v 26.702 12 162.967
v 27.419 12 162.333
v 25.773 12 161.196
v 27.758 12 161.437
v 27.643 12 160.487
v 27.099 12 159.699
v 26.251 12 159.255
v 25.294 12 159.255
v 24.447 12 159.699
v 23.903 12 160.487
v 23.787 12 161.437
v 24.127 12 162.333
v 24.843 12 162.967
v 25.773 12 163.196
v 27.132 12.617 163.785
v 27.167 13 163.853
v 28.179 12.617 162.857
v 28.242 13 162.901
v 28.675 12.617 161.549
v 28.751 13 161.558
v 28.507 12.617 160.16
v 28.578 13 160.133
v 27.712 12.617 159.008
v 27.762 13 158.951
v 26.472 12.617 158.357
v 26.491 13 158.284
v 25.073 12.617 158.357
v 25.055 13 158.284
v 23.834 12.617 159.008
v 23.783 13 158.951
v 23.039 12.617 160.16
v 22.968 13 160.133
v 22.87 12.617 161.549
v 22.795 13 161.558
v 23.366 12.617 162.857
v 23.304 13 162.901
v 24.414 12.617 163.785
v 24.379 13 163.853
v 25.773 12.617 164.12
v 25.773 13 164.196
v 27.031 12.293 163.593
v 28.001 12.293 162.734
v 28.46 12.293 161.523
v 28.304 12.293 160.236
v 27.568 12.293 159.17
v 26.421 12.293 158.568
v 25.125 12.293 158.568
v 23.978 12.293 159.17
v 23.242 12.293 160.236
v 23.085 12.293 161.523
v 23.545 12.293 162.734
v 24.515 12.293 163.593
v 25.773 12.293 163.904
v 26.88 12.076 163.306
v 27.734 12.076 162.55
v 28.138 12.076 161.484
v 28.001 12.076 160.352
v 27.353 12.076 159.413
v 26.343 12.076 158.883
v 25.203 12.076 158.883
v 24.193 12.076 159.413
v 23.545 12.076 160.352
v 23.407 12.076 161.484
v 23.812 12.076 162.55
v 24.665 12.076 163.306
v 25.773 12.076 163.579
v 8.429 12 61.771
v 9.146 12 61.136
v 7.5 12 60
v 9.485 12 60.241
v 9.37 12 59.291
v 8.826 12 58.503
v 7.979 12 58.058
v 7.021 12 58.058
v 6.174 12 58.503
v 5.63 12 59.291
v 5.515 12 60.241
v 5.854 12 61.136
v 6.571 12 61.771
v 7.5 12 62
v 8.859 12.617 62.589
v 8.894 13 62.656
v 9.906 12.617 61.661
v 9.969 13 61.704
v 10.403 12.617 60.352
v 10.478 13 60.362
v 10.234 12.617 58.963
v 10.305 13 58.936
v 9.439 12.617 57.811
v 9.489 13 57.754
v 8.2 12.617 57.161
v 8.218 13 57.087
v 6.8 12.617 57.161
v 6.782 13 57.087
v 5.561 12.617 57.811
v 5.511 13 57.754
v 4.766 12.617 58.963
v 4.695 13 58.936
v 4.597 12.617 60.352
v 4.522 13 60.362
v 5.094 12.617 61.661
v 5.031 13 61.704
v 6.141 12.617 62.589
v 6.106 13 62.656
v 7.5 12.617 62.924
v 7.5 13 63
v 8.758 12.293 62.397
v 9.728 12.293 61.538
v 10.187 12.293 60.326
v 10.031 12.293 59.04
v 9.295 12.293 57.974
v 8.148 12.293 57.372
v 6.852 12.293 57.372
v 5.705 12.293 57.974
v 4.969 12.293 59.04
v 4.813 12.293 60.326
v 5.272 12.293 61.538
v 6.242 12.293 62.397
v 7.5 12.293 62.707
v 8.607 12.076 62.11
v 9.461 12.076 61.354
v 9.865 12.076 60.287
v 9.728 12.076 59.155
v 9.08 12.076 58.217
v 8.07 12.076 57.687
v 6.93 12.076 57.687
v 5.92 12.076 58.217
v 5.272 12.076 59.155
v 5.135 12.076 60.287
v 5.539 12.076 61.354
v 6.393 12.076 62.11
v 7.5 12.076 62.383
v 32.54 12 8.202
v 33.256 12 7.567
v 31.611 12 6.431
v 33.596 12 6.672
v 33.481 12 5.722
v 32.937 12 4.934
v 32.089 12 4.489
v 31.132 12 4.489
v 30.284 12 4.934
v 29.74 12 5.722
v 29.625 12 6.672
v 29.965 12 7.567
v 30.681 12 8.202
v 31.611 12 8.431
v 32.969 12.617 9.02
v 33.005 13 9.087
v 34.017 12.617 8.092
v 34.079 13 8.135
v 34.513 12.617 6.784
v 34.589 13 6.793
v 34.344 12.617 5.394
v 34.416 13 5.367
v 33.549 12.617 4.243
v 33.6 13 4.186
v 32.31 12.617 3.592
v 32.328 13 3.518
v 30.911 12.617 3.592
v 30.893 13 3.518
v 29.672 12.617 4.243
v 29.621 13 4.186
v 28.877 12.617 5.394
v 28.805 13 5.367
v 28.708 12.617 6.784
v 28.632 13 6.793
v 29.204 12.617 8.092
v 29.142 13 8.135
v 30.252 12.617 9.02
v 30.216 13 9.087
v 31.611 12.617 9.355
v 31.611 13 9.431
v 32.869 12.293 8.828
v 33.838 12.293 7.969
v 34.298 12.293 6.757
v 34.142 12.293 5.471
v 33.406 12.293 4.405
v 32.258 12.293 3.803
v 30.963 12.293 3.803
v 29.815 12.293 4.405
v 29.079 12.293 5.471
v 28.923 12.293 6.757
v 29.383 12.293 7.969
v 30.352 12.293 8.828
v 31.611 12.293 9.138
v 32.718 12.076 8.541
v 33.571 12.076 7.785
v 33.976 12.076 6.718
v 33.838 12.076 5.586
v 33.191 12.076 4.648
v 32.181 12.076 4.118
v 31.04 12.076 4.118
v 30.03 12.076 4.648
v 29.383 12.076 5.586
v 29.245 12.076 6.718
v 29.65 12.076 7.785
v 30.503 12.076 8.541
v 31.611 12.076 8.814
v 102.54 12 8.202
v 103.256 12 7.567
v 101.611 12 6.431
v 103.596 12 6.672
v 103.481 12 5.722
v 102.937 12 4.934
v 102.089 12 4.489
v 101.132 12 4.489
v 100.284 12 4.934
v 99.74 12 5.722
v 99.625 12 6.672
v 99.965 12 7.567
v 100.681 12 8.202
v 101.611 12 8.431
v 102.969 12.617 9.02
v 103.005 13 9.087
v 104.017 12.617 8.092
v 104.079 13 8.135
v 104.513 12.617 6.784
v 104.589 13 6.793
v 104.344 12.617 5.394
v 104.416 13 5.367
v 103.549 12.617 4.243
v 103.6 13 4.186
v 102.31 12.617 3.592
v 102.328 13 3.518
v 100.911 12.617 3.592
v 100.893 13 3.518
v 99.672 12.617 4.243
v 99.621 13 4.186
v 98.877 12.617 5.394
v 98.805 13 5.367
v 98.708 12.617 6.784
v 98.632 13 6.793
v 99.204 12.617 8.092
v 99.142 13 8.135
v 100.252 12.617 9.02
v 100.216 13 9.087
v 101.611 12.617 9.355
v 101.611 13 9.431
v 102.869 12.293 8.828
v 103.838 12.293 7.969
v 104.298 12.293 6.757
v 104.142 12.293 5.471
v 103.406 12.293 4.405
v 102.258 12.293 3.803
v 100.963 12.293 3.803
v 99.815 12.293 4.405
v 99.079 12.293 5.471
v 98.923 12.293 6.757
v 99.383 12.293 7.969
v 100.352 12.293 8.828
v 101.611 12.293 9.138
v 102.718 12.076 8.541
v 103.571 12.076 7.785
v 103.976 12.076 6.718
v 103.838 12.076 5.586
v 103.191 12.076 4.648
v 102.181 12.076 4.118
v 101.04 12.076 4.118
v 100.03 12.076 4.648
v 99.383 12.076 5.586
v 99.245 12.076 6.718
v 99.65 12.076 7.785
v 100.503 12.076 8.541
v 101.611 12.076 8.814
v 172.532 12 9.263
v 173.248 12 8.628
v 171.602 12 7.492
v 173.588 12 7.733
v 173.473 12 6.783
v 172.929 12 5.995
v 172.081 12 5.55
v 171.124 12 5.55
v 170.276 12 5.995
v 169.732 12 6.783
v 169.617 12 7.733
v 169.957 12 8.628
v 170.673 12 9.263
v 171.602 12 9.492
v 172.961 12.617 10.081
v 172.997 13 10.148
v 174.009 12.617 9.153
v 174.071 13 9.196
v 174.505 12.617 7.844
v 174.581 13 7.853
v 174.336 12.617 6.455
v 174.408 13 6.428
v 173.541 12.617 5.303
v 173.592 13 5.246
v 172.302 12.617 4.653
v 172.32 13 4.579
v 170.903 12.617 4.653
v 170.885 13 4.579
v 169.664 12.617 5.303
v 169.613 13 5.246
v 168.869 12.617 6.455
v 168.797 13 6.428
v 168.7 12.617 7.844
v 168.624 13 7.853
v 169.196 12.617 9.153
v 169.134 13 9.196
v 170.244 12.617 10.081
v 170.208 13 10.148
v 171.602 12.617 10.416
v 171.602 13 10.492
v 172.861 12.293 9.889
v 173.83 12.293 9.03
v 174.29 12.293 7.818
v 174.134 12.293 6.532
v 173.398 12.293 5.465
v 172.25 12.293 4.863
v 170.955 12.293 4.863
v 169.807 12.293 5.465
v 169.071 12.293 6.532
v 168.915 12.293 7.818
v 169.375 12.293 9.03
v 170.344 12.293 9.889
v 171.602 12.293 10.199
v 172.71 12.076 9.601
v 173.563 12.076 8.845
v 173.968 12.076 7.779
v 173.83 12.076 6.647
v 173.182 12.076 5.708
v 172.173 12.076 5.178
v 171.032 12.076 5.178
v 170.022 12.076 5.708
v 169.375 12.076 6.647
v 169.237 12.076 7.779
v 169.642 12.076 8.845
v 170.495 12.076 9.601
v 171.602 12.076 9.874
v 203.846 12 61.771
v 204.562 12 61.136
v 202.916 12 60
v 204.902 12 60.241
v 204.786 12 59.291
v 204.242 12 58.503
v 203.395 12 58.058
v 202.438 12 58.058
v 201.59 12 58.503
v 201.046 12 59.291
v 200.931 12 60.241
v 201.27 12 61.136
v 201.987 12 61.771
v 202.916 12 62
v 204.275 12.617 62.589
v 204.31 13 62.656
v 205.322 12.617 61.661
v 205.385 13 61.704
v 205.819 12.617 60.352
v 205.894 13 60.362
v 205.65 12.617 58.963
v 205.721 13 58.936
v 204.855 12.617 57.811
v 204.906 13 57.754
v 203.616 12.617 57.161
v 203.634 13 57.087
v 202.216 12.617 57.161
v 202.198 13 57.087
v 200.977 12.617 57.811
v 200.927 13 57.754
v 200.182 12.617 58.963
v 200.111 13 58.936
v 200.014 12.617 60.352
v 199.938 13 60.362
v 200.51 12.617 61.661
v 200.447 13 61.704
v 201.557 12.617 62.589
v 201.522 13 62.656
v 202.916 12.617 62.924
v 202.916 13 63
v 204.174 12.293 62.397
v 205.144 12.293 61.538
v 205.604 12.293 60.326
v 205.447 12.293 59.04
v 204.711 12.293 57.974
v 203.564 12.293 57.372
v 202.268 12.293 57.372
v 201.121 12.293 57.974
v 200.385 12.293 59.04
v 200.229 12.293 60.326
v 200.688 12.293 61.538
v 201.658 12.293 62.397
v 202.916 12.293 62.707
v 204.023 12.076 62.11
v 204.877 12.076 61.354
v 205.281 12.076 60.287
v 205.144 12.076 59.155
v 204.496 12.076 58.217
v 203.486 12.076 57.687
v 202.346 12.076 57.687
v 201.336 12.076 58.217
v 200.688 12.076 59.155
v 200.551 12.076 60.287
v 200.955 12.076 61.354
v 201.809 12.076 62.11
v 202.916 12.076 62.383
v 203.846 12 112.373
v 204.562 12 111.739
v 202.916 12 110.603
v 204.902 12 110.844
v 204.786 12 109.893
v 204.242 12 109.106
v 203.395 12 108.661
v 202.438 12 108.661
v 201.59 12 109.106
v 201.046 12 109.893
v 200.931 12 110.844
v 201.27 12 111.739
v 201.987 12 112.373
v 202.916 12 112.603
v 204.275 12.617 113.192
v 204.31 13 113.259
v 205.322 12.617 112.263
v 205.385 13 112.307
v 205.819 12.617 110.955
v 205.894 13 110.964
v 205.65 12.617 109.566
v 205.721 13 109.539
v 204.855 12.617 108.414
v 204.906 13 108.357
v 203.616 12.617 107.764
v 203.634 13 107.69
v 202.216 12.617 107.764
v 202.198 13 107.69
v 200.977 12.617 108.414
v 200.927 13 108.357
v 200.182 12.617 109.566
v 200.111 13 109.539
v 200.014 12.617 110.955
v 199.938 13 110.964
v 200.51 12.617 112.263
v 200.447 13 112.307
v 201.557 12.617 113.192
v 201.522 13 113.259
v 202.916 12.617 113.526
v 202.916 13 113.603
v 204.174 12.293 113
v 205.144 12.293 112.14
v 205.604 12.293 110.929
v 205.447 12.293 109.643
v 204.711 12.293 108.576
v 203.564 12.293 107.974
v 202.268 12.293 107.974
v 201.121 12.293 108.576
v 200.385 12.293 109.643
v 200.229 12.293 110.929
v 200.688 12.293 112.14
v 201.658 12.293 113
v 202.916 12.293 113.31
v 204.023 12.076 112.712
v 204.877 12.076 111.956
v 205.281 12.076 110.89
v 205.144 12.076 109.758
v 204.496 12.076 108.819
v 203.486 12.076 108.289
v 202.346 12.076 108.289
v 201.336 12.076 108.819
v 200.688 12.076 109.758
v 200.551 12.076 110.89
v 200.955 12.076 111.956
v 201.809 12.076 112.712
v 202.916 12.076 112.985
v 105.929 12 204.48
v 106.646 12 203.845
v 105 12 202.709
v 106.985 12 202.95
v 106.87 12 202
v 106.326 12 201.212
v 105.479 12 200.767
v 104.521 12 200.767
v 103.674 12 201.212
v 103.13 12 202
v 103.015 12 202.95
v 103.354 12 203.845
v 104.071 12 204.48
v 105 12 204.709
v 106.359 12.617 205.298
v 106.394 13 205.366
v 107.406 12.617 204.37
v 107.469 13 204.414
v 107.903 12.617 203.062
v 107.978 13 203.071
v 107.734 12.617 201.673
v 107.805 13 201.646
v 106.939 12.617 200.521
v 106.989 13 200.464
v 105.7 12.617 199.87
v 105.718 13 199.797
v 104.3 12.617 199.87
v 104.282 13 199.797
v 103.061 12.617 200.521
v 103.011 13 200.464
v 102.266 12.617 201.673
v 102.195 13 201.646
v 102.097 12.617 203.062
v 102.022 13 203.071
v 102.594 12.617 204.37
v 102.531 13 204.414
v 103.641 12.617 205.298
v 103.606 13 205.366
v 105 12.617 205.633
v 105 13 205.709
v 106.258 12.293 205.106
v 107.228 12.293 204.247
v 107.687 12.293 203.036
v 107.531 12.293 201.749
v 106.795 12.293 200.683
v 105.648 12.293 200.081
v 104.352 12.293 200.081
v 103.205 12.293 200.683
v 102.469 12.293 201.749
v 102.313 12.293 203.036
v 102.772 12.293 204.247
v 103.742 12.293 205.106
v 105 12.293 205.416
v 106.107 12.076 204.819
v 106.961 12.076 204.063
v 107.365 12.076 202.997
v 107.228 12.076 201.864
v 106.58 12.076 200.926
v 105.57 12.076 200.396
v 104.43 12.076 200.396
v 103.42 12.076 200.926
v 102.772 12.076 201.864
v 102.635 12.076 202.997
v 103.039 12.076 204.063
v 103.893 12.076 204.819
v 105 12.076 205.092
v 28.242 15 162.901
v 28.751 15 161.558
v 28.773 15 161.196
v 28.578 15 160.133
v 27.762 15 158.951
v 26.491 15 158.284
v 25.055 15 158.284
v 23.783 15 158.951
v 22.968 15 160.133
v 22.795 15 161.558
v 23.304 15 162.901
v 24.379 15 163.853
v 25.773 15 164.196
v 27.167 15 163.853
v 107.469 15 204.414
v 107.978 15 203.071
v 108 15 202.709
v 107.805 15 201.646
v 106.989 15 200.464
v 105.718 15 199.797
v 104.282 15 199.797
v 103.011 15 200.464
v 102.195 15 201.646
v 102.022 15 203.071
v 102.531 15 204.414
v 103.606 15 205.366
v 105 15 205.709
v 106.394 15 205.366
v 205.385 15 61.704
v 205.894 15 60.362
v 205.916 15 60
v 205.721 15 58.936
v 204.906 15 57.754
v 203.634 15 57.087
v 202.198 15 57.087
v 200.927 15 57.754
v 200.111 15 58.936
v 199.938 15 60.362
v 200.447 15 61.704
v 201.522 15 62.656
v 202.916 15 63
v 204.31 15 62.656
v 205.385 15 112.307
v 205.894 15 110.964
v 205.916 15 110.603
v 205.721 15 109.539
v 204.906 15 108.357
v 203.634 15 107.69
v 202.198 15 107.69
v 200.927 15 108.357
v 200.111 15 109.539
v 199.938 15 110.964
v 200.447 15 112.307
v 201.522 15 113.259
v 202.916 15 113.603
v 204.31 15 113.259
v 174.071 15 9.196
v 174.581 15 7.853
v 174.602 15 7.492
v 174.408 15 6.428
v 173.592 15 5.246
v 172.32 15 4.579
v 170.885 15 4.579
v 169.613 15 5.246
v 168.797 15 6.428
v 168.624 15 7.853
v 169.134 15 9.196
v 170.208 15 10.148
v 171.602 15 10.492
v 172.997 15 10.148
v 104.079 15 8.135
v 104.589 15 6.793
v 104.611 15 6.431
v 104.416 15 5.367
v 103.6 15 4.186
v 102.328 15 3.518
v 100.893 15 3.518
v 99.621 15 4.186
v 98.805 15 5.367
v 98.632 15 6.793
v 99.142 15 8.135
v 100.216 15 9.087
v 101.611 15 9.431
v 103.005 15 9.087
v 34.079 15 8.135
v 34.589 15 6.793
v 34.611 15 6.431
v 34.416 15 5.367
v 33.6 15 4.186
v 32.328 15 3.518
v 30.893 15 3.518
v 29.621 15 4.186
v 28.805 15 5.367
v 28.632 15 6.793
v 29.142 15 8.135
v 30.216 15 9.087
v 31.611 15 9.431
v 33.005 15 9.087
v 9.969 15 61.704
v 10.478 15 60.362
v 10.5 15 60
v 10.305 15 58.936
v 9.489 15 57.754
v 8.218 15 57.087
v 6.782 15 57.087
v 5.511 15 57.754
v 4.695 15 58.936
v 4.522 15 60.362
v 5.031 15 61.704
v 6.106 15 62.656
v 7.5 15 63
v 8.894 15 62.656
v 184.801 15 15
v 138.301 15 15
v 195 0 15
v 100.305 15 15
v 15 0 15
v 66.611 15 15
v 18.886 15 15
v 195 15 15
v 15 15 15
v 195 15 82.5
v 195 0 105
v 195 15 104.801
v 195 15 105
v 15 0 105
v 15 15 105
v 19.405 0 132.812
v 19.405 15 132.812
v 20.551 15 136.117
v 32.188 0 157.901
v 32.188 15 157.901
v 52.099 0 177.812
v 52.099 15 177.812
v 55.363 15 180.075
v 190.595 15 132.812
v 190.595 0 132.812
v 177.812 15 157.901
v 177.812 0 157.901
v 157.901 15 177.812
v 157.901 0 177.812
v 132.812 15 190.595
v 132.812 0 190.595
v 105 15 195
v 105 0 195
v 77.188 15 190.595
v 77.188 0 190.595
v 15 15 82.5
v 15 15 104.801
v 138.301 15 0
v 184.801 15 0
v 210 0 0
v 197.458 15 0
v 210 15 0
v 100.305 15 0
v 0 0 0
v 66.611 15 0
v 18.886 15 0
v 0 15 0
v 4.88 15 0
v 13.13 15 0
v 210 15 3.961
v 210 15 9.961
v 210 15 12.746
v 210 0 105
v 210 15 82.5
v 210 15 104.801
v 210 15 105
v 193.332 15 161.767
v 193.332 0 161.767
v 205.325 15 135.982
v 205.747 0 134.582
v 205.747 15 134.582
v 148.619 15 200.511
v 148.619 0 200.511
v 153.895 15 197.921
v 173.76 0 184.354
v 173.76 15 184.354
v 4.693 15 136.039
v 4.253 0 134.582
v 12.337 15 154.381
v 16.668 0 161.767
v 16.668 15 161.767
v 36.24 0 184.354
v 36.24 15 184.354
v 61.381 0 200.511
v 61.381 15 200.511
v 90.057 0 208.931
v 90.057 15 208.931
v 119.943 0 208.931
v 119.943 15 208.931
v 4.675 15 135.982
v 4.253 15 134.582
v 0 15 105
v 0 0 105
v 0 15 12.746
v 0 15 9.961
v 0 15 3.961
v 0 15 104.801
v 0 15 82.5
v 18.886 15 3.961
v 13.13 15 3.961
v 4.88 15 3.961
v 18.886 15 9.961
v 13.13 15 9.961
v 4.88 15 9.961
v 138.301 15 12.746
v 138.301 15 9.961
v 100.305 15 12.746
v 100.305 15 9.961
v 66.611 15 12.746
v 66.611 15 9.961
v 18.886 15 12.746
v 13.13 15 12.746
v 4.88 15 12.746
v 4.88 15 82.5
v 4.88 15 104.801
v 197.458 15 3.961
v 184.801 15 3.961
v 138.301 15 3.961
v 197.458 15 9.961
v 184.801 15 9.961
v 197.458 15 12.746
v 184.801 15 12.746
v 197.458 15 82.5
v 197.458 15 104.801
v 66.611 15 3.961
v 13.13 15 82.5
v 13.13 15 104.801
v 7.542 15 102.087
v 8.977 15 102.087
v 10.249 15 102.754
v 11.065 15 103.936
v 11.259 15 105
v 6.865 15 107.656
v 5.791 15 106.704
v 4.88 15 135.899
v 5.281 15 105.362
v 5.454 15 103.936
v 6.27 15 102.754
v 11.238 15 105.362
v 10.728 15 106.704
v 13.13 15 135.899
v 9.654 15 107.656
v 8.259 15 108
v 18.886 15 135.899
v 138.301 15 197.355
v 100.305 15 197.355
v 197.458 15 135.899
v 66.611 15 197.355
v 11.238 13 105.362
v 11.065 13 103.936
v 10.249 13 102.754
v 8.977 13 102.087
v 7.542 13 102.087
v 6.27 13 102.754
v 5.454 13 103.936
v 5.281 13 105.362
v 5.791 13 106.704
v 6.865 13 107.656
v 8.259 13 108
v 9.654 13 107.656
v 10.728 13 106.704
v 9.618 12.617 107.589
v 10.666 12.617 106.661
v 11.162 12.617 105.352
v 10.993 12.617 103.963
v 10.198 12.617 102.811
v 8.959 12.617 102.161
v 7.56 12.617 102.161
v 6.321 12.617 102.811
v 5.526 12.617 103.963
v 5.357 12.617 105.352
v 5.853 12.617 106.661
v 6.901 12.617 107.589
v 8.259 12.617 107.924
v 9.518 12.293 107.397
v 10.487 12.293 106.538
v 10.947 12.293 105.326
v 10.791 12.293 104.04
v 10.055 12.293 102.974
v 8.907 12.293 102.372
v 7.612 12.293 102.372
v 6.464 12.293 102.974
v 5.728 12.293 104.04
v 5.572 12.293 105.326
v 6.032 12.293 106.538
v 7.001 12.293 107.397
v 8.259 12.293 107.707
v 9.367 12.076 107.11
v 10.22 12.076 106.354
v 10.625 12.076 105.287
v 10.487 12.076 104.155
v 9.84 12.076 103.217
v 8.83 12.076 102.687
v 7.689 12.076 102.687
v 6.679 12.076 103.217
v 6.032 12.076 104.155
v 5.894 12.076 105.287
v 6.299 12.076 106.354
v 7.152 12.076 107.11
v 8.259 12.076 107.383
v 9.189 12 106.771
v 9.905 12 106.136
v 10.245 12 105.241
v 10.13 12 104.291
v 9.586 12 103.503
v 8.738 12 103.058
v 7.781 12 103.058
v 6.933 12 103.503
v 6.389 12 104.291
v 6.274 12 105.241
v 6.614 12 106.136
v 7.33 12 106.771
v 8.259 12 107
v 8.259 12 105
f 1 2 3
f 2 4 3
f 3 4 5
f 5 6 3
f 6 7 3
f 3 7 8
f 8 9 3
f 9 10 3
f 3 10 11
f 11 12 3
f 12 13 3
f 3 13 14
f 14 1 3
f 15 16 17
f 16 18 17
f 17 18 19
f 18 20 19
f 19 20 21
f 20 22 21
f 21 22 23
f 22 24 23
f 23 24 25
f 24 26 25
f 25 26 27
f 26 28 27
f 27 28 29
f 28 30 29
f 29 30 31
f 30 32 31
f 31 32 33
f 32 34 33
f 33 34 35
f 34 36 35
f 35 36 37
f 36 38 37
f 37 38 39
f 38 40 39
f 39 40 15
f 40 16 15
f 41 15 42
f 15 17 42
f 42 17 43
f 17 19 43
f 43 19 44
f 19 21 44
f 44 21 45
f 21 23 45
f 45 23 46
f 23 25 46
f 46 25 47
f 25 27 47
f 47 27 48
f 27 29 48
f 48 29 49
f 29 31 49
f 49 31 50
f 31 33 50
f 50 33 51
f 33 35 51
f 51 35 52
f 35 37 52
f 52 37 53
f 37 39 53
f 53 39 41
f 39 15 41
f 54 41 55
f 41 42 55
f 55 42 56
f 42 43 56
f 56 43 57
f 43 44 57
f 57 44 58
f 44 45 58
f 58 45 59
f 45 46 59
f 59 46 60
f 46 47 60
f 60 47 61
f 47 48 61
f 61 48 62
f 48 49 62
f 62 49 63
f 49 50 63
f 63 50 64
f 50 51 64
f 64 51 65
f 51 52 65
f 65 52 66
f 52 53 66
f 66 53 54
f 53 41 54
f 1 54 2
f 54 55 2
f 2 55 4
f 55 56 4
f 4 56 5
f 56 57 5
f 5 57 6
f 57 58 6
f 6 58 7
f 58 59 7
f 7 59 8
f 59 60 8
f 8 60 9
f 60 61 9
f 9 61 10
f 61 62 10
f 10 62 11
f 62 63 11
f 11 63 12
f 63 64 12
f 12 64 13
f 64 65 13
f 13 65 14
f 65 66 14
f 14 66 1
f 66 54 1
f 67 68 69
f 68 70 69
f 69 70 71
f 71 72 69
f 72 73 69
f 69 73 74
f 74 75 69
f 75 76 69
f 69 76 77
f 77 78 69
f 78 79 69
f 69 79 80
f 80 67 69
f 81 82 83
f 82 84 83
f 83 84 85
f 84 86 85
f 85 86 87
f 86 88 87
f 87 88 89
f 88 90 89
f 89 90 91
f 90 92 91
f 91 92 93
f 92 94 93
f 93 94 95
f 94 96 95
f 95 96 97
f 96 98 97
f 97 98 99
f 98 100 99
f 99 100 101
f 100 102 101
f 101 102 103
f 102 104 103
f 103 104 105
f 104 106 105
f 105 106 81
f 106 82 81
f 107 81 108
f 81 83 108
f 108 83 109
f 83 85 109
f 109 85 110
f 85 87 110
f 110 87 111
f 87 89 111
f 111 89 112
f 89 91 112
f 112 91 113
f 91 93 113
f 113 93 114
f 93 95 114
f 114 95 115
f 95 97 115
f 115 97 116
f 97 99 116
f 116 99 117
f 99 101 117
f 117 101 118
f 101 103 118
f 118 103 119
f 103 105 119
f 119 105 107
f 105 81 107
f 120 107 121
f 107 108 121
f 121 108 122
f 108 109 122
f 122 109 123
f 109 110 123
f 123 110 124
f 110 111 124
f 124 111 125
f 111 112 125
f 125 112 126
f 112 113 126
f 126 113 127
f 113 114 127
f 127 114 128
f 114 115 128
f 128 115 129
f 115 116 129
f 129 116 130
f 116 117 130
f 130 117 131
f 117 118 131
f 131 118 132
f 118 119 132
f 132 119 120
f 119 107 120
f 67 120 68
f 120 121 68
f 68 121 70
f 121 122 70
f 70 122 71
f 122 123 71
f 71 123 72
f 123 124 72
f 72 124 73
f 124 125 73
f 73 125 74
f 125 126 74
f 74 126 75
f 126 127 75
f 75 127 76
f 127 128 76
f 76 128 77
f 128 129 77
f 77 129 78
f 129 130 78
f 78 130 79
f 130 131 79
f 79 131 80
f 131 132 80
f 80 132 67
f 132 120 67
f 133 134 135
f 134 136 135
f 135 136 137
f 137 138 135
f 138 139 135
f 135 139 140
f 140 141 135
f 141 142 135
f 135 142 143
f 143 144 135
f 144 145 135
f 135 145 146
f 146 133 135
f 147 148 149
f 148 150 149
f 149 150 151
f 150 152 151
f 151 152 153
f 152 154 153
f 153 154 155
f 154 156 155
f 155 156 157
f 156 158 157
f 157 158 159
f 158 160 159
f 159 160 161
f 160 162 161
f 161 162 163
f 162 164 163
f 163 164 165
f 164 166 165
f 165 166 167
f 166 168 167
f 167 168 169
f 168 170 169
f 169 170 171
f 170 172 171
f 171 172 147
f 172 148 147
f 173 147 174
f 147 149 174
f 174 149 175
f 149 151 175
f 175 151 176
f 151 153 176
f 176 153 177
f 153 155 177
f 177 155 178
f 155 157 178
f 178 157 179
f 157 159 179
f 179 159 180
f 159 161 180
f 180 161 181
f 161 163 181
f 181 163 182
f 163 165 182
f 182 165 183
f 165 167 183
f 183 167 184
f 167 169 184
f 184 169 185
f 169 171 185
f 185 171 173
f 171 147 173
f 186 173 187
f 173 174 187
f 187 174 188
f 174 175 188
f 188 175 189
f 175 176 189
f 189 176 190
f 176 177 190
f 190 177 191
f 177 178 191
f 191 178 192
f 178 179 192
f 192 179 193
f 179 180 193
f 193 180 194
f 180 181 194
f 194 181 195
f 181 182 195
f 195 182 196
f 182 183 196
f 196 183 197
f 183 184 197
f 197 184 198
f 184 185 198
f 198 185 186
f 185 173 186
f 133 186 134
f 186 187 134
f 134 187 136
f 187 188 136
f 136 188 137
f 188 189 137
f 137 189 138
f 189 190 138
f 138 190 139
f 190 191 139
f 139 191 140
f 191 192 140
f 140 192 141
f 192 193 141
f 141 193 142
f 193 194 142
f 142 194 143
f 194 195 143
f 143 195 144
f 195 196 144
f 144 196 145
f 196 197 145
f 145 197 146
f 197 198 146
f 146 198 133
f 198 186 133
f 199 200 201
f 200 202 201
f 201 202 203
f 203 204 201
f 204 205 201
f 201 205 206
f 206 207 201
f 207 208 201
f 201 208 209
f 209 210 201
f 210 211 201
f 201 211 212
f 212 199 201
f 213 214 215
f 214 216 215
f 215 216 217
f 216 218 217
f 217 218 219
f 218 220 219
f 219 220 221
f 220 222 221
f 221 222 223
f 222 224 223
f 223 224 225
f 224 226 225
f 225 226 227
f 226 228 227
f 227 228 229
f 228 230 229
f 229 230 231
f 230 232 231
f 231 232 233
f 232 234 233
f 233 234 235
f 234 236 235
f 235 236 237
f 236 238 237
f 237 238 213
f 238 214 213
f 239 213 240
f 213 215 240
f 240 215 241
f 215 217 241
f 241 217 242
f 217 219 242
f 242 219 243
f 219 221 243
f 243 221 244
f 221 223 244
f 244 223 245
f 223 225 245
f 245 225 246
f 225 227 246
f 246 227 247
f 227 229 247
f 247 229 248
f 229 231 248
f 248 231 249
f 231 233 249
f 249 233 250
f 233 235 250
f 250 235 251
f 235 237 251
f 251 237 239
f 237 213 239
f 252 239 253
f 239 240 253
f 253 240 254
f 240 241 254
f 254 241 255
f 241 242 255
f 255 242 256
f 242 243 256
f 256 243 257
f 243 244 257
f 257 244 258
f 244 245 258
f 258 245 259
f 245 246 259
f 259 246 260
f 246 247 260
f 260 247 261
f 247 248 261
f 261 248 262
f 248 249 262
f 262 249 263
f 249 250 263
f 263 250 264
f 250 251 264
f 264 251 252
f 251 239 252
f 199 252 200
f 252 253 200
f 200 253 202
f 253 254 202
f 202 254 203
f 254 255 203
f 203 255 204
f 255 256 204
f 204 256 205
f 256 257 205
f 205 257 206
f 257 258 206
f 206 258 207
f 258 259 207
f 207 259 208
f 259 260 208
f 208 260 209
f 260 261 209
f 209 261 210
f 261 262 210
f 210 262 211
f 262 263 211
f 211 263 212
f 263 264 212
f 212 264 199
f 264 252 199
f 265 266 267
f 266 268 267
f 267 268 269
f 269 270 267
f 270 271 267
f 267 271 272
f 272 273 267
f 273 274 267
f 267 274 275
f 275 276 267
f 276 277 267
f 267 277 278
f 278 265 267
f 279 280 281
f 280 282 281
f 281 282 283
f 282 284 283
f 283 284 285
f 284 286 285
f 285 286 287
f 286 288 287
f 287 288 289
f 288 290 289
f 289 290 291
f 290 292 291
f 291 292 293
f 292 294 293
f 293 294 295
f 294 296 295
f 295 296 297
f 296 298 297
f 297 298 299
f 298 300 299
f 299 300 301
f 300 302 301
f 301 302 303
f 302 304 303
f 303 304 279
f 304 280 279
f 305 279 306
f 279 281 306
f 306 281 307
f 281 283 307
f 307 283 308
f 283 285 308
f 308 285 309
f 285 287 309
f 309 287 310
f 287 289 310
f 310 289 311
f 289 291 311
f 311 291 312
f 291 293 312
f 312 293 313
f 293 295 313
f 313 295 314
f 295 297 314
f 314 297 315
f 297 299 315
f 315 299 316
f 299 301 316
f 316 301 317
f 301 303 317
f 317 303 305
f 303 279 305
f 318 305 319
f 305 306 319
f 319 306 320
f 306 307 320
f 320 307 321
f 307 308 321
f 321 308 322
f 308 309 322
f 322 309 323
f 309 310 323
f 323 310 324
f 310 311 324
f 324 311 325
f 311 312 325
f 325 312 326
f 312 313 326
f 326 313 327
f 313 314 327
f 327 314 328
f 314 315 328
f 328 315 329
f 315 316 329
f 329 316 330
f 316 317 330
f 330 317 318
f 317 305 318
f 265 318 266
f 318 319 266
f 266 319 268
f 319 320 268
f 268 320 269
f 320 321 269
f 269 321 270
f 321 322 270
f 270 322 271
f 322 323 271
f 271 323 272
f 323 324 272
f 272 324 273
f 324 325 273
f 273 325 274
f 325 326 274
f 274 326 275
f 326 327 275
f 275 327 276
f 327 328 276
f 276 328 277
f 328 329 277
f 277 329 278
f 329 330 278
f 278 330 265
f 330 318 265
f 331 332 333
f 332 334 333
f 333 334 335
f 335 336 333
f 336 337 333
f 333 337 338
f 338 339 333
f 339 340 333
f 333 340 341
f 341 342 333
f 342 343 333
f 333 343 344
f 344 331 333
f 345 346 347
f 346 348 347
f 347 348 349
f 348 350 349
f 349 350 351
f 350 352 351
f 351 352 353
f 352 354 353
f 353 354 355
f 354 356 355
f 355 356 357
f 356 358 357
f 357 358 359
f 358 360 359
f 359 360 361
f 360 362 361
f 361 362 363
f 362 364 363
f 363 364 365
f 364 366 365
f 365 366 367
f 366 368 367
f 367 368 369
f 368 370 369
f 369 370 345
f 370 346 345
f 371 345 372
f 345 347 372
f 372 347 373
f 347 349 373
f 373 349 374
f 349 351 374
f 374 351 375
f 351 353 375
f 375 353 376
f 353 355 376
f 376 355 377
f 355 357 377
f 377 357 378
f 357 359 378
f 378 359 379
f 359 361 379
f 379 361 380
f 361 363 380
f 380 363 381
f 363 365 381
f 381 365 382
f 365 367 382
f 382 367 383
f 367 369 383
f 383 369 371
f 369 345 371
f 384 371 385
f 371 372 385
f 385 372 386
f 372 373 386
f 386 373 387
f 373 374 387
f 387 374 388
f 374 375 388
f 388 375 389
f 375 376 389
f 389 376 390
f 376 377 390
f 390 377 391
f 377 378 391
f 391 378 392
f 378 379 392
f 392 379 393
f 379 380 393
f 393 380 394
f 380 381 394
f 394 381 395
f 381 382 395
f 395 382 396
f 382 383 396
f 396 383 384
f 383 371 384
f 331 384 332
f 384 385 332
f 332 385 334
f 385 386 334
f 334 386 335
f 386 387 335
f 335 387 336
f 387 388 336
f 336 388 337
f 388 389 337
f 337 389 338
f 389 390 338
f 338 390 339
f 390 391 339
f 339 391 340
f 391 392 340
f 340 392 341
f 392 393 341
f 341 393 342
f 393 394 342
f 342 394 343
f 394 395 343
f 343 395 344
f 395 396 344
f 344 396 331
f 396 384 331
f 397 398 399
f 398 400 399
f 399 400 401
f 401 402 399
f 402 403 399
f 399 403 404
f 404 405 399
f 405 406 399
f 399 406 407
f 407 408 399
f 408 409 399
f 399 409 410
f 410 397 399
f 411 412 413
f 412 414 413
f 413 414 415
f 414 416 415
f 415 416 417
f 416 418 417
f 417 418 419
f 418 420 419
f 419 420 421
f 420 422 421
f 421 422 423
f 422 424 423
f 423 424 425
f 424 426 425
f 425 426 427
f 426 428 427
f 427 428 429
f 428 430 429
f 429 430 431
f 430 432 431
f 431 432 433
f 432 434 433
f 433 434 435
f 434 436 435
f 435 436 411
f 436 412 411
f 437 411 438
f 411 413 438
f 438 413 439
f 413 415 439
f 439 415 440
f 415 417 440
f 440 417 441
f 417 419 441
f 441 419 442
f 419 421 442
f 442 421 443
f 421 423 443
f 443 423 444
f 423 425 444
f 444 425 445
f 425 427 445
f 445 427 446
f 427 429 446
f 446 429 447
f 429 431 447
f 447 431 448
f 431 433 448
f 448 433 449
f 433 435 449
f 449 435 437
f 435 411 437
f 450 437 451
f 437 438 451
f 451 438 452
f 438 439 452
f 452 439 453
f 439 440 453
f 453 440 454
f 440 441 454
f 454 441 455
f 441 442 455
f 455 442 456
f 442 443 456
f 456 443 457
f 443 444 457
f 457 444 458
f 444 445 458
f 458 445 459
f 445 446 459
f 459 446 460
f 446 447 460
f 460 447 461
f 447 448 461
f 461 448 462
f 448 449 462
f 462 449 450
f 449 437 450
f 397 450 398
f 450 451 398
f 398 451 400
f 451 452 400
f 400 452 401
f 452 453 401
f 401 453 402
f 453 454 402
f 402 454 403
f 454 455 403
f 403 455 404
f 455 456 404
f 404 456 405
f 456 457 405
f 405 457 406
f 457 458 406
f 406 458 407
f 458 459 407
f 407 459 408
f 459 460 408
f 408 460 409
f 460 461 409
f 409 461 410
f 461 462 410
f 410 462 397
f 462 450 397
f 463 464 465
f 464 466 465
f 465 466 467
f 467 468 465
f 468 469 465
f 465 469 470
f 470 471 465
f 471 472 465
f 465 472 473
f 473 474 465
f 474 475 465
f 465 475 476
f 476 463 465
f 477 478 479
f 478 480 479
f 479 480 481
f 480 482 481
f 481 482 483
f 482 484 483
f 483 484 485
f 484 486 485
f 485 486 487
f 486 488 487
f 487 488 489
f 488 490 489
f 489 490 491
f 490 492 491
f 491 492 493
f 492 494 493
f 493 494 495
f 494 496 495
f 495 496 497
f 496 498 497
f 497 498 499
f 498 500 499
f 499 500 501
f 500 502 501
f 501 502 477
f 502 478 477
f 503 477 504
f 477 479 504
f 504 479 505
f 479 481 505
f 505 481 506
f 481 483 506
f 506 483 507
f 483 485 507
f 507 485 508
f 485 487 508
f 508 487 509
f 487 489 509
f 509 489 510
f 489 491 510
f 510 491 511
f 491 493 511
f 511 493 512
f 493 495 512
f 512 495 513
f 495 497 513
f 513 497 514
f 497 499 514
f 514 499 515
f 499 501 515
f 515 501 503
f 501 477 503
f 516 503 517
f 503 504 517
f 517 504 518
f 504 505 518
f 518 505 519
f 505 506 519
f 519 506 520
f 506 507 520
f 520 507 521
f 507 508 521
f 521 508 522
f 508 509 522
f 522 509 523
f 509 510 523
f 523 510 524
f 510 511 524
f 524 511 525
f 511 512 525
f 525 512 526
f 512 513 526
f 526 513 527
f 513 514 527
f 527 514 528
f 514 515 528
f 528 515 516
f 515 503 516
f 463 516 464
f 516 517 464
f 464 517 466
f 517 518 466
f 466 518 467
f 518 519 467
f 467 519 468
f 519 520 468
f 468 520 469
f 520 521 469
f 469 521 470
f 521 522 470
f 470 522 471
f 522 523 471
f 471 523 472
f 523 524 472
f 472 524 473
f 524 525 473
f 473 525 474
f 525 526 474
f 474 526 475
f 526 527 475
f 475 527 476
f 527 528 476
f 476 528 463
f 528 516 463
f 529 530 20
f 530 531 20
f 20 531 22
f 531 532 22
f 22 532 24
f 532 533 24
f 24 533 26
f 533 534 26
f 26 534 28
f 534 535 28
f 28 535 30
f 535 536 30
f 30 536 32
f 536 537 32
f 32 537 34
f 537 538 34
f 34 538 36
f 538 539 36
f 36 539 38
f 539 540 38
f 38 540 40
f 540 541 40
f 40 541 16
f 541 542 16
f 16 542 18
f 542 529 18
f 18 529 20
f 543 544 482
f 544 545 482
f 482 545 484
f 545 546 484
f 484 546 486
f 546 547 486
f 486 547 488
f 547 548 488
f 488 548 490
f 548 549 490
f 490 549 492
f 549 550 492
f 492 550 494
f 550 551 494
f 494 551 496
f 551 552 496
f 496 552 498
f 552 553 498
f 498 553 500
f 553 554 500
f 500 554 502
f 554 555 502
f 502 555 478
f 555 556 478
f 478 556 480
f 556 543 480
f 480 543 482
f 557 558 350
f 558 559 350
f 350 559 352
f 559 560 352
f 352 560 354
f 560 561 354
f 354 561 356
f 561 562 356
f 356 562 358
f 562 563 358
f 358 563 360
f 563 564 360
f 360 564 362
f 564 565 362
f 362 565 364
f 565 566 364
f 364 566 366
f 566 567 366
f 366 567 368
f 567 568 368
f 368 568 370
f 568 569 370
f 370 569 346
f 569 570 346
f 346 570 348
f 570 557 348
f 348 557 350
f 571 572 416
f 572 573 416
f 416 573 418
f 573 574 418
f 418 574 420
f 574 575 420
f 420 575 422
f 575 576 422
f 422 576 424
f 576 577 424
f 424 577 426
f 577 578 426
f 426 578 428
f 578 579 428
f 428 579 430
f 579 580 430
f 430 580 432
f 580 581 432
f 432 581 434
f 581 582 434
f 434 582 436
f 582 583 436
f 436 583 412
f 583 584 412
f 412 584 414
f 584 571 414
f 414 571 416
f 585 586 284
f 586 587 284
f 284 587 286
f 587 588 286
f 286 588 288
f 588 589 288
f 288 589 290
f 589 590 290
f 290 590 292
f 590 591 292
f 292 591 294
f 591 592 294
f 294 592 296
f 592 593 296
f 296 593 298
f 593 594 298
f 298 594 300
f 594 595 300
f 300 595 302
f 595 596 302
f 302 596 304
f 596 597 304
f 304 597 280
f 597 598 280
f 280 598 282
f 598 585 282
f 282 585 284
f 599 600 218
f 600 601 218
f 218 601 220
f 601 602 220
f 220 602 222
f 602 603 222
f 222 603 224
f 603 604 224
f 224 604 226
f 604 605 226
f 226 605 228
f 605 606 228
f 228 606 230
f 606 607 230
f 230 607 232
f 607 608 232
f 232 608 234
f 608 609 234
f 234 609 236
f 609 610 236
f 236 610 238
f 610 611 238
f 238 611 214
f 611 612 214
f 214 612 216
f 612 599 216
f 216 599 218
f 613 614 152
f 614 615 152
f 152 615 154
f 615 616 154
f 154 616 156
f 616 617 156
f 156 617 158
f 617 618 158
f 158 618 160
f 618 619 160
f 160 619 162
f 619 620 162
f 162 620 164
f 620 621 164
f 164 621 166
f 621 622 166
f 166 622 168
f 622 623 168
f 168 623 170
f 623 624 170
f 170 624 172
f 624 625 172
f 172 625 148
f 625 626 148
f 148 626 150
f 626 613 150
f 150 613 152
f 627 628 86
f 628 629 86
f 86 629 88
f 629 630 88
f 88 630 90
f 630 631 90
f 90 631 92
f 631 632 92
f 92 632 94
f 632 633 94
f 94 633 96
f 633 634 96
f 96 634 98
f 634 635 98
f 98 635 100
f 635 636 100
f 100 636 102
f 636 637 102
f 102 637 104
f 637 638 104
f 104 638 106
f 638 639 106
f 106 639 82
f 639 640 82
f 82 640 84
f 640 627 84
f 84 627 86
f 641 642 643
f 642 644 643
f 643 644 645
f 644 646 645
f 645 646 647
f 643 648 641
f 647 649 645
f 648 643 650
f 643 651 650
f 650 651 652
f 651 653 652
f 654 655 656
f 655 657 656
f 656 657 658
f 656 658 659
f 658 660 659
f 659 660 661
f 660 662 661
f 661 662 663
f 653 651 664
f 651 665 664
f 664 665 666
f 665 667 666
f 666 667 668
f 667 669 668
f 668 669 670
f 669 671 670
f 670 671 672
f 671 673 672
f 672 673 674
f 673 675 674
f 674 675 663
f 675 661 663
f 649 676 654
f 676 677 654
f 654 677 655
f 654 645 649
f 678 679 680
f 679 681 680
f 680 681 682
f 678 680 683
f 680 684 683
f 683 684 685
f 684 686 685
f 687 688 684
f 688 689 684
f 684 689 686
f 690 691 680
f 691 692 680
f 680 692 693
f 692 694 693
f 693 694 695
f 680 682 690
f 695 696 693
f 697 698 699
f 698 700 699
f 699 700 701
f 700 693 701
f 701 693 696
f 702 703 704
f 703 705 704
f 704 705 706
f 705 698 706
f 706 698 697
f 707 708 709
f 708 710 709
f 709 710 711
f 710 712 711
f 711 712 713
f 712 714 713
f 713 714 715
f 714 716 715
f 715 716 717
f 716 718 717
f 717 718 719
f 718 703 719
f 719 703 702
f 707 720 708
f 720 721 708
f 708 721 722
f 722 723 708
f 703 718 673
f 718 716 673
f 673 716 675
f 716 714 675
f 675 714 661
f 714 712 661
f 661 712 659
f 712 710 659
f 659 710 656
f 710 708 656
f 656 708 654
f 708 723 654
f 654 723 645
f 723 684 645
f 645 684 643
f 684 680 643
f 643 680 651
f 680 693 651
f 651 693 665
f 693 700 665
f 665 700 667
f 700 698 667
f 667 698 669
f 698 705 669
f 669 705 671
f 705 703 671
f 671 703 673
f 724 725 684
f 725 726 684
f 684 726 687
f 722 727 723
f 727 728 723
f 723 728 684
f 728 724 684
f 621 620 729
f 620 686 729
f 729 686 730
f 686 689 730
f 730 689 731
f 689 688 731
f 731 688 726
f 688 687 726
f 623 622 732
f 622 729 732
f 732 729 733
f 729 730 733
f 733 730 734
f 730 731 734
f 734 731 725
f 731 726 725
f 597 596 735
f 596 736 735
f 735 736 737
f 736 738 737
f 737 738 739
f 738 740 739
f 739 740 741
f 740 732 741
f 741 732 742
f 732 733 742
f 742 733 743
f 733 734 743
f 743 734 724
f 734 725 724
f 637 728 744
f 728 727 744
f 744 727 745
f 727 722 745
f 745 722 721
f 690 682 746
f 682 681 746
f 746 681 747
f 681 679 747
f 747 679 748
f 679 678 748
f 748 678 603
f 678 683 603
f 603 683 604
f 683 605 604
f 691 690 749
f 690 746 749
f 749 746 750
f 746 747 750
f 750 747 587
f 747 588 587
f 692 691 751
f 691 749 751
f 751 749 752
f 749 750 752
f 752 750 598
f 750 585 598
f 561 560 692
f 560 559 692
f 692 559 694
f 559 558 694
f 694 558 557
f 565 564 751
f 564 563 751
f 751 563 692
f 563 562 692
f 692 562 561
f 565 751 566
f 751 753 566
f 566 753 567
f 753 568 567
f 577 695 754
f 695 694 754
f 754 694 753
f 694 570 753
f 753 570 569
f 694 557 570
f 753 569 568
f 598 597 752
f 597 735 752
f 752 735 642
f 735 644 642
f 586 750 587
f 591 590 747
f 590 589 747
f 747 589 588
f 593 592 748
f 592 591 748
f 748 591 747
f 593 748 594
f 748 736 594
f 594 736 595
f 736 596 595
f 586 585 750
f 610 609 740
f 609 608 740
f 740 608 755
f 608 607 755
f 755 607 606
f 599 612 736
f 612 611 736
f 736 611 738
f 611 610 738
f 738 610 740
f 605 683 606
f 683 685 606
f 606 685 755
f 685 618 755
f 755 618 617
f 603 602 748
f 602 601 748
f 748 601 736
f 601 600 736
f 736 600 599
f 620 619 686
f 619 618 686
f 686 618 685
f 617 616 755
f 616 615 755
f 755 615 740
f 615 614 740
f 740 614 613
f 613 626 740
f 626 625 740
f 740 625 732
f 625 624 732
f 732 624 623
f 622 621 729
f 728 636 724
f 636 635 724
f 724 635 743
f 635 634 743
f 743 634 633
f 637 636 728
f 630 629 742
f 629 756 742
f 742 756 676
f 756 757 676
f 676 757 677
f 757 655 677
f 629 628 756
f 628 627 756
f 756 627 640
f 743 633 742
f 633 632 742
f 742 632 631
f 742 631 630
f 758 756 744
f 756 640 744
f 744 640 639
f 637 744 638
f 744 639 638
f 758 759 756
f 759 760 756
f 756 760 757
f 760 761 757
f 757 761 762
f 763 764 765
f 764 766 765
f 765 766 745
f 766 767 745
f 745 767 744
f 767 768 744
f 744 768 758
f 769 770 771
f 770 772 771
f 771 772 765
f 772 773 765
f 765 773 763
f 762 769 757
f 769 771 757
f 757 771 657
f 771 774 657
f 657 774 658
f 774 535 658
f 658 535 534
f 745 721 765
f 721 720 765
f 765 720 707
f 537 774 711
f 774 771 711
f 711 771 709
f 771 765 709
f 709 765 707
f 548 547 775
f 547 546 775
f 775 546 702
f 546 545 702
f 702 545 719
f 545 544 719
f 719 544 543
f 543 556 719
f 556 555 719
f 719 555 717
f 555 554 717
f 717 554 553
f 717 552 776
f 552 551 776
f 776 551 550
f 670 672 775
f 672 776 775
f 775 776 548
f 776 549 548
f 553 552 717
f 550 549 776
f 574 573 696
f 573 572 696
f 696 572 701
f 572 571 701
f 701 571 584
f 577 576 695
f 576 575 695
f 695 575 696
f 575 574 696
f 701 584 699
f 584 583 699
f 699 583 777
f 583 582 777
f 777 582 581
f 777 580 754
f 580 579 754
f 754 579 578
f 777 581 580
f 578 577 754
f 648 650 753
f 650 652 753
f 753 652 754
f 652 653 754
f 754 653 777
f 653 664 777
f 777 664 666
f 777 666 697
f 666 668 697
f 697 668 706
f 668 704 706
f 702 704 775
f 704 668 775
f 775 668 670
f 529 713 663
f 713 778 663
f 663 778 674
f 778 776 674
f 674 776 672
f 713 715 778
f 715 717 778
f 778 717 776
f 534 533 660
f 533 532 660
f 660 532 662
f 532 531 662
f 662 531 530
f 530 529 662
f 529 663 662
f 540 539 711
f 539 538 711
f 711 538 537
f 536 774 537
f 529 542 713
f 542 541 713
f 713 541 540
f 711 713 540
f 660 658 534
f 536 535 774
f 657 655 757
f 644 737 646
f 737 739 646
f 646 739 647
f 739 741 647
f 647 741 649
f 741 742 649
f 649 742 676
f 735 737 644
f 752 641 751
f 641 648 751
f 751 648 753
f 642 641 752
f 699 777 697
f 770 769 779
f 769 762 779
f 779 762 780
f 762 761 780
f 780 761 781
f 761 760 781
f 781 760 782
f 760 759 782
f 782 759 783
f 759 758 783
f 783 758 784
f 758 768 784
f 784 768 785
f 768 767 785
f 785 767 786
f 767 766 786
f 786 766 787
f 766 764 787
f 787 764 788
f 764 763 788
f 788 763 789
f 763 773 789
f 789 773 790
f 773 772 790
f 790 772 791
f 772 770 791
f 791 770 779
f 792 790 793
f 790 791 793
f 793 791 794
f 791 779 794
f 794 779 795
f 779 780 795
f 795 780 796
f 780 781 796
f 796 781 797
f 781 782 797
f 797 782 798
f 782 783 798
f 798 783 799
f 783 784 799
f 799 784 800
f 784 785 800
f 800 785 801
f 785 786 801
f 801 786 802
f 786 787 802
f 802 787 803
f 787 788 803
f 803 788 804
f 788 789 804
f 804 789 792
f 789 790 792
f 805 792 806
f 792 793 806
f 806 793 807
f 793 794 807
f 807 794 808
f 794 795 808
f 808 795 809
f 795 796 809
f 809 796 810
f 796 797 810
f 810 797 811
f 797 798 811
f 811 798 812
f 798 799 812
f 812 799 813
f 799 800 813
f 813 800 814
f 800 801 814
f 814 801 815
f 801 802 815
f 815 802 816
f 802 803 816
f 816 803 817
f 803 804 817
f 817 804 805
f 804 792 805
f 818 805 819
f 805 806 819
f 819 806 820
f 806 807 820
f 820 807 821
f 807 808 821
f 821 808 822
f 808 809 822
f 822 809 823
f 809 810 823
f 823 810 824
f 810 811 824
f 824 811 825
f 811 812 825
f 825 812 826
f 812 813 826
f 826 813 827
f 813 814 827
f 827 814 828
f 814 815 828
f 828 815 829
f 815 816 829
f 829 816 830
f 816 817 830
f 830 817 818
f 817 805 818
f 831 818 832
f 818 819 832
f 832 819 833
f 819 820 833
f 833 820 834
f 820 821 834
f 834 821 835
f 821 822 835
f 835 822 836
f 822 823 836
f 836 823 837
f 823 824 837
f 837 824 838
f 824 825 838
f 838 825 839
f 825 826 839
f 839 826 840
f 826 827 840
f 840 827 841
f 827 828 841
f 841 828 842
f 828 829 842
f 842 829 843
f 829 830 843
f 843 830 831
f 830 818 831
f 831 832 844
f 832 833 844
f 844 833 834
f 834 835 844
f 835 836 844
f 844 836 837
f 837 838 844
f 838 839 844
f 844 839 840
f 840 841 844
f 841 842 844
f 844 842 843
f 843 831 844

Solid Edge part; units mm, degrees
sketch "Sketch1" plane through (0, 0, 0) normal (0, -1, 0) x (1, 0, 0)
  line L0 (210, 0) -> (210, 105)
  line L1 (0, 0) -> (210, 0)
  line L2 (0, 105) -> (0, 0)
  arc A0 (0, 105) -> (210, 105) centre (105, 105) cw
extrude "Protrusion1" add sketch "Sketch1" against normal blind 15
sketch "Sketch2" plane through (0, 0, 0) normal (0, -1, 0) x (1, 0, 0)
  arc A0 (15, 105) -> (195, 105) centre (105, 105) cw
  line L0 (195, 105) -> (195, 15)
  line L1 (195, 15) -> (15, 15)
  line L2 (15, 15) -> (15, 105)
extrude "ExtrudedCutout_1" cut sketch "Sketch2" against normal blind 15
sketch "Sketch3" plane through (0, 15, 0) normal (0, -1, 0) x (1, 0, 0)
  circle A0 centre (105, 202.7093) radius 3
  circle A1 centre (25.7728, 161.1964) radius 3
  circle A2 centre (8.2595, 105) radius 3
  circle A3 centre (202.9161, 60) radius 3
  circle A4 centre (202.9161, 110.6025) radius 3
  circle A5 centre (171.6025, 7.4917) radius 3
  circle A6 centre (101.6105, 6.4311) radius 3
  circle A7 centre (31.6105, 6.4311) radius 3
  circle A8 centre (7.5, 60) radius 3
extrude "ExtrudedProtrusion_3" cut sketch "Sketch3" along normal blind 3
fillet "Round_4" radius 1 9 edges at (102, 12, 202.7093) (22.7728, 12, 161.1964) (5.2595, 12, 105) (4.5, 12, 60) (28.6105, 12, 6.4311) (98.6105, 12, 6.4311) (168.6025, 12, 7.4917) (199.9161, 12, 60) (199.9161, 12, 110.6025)
